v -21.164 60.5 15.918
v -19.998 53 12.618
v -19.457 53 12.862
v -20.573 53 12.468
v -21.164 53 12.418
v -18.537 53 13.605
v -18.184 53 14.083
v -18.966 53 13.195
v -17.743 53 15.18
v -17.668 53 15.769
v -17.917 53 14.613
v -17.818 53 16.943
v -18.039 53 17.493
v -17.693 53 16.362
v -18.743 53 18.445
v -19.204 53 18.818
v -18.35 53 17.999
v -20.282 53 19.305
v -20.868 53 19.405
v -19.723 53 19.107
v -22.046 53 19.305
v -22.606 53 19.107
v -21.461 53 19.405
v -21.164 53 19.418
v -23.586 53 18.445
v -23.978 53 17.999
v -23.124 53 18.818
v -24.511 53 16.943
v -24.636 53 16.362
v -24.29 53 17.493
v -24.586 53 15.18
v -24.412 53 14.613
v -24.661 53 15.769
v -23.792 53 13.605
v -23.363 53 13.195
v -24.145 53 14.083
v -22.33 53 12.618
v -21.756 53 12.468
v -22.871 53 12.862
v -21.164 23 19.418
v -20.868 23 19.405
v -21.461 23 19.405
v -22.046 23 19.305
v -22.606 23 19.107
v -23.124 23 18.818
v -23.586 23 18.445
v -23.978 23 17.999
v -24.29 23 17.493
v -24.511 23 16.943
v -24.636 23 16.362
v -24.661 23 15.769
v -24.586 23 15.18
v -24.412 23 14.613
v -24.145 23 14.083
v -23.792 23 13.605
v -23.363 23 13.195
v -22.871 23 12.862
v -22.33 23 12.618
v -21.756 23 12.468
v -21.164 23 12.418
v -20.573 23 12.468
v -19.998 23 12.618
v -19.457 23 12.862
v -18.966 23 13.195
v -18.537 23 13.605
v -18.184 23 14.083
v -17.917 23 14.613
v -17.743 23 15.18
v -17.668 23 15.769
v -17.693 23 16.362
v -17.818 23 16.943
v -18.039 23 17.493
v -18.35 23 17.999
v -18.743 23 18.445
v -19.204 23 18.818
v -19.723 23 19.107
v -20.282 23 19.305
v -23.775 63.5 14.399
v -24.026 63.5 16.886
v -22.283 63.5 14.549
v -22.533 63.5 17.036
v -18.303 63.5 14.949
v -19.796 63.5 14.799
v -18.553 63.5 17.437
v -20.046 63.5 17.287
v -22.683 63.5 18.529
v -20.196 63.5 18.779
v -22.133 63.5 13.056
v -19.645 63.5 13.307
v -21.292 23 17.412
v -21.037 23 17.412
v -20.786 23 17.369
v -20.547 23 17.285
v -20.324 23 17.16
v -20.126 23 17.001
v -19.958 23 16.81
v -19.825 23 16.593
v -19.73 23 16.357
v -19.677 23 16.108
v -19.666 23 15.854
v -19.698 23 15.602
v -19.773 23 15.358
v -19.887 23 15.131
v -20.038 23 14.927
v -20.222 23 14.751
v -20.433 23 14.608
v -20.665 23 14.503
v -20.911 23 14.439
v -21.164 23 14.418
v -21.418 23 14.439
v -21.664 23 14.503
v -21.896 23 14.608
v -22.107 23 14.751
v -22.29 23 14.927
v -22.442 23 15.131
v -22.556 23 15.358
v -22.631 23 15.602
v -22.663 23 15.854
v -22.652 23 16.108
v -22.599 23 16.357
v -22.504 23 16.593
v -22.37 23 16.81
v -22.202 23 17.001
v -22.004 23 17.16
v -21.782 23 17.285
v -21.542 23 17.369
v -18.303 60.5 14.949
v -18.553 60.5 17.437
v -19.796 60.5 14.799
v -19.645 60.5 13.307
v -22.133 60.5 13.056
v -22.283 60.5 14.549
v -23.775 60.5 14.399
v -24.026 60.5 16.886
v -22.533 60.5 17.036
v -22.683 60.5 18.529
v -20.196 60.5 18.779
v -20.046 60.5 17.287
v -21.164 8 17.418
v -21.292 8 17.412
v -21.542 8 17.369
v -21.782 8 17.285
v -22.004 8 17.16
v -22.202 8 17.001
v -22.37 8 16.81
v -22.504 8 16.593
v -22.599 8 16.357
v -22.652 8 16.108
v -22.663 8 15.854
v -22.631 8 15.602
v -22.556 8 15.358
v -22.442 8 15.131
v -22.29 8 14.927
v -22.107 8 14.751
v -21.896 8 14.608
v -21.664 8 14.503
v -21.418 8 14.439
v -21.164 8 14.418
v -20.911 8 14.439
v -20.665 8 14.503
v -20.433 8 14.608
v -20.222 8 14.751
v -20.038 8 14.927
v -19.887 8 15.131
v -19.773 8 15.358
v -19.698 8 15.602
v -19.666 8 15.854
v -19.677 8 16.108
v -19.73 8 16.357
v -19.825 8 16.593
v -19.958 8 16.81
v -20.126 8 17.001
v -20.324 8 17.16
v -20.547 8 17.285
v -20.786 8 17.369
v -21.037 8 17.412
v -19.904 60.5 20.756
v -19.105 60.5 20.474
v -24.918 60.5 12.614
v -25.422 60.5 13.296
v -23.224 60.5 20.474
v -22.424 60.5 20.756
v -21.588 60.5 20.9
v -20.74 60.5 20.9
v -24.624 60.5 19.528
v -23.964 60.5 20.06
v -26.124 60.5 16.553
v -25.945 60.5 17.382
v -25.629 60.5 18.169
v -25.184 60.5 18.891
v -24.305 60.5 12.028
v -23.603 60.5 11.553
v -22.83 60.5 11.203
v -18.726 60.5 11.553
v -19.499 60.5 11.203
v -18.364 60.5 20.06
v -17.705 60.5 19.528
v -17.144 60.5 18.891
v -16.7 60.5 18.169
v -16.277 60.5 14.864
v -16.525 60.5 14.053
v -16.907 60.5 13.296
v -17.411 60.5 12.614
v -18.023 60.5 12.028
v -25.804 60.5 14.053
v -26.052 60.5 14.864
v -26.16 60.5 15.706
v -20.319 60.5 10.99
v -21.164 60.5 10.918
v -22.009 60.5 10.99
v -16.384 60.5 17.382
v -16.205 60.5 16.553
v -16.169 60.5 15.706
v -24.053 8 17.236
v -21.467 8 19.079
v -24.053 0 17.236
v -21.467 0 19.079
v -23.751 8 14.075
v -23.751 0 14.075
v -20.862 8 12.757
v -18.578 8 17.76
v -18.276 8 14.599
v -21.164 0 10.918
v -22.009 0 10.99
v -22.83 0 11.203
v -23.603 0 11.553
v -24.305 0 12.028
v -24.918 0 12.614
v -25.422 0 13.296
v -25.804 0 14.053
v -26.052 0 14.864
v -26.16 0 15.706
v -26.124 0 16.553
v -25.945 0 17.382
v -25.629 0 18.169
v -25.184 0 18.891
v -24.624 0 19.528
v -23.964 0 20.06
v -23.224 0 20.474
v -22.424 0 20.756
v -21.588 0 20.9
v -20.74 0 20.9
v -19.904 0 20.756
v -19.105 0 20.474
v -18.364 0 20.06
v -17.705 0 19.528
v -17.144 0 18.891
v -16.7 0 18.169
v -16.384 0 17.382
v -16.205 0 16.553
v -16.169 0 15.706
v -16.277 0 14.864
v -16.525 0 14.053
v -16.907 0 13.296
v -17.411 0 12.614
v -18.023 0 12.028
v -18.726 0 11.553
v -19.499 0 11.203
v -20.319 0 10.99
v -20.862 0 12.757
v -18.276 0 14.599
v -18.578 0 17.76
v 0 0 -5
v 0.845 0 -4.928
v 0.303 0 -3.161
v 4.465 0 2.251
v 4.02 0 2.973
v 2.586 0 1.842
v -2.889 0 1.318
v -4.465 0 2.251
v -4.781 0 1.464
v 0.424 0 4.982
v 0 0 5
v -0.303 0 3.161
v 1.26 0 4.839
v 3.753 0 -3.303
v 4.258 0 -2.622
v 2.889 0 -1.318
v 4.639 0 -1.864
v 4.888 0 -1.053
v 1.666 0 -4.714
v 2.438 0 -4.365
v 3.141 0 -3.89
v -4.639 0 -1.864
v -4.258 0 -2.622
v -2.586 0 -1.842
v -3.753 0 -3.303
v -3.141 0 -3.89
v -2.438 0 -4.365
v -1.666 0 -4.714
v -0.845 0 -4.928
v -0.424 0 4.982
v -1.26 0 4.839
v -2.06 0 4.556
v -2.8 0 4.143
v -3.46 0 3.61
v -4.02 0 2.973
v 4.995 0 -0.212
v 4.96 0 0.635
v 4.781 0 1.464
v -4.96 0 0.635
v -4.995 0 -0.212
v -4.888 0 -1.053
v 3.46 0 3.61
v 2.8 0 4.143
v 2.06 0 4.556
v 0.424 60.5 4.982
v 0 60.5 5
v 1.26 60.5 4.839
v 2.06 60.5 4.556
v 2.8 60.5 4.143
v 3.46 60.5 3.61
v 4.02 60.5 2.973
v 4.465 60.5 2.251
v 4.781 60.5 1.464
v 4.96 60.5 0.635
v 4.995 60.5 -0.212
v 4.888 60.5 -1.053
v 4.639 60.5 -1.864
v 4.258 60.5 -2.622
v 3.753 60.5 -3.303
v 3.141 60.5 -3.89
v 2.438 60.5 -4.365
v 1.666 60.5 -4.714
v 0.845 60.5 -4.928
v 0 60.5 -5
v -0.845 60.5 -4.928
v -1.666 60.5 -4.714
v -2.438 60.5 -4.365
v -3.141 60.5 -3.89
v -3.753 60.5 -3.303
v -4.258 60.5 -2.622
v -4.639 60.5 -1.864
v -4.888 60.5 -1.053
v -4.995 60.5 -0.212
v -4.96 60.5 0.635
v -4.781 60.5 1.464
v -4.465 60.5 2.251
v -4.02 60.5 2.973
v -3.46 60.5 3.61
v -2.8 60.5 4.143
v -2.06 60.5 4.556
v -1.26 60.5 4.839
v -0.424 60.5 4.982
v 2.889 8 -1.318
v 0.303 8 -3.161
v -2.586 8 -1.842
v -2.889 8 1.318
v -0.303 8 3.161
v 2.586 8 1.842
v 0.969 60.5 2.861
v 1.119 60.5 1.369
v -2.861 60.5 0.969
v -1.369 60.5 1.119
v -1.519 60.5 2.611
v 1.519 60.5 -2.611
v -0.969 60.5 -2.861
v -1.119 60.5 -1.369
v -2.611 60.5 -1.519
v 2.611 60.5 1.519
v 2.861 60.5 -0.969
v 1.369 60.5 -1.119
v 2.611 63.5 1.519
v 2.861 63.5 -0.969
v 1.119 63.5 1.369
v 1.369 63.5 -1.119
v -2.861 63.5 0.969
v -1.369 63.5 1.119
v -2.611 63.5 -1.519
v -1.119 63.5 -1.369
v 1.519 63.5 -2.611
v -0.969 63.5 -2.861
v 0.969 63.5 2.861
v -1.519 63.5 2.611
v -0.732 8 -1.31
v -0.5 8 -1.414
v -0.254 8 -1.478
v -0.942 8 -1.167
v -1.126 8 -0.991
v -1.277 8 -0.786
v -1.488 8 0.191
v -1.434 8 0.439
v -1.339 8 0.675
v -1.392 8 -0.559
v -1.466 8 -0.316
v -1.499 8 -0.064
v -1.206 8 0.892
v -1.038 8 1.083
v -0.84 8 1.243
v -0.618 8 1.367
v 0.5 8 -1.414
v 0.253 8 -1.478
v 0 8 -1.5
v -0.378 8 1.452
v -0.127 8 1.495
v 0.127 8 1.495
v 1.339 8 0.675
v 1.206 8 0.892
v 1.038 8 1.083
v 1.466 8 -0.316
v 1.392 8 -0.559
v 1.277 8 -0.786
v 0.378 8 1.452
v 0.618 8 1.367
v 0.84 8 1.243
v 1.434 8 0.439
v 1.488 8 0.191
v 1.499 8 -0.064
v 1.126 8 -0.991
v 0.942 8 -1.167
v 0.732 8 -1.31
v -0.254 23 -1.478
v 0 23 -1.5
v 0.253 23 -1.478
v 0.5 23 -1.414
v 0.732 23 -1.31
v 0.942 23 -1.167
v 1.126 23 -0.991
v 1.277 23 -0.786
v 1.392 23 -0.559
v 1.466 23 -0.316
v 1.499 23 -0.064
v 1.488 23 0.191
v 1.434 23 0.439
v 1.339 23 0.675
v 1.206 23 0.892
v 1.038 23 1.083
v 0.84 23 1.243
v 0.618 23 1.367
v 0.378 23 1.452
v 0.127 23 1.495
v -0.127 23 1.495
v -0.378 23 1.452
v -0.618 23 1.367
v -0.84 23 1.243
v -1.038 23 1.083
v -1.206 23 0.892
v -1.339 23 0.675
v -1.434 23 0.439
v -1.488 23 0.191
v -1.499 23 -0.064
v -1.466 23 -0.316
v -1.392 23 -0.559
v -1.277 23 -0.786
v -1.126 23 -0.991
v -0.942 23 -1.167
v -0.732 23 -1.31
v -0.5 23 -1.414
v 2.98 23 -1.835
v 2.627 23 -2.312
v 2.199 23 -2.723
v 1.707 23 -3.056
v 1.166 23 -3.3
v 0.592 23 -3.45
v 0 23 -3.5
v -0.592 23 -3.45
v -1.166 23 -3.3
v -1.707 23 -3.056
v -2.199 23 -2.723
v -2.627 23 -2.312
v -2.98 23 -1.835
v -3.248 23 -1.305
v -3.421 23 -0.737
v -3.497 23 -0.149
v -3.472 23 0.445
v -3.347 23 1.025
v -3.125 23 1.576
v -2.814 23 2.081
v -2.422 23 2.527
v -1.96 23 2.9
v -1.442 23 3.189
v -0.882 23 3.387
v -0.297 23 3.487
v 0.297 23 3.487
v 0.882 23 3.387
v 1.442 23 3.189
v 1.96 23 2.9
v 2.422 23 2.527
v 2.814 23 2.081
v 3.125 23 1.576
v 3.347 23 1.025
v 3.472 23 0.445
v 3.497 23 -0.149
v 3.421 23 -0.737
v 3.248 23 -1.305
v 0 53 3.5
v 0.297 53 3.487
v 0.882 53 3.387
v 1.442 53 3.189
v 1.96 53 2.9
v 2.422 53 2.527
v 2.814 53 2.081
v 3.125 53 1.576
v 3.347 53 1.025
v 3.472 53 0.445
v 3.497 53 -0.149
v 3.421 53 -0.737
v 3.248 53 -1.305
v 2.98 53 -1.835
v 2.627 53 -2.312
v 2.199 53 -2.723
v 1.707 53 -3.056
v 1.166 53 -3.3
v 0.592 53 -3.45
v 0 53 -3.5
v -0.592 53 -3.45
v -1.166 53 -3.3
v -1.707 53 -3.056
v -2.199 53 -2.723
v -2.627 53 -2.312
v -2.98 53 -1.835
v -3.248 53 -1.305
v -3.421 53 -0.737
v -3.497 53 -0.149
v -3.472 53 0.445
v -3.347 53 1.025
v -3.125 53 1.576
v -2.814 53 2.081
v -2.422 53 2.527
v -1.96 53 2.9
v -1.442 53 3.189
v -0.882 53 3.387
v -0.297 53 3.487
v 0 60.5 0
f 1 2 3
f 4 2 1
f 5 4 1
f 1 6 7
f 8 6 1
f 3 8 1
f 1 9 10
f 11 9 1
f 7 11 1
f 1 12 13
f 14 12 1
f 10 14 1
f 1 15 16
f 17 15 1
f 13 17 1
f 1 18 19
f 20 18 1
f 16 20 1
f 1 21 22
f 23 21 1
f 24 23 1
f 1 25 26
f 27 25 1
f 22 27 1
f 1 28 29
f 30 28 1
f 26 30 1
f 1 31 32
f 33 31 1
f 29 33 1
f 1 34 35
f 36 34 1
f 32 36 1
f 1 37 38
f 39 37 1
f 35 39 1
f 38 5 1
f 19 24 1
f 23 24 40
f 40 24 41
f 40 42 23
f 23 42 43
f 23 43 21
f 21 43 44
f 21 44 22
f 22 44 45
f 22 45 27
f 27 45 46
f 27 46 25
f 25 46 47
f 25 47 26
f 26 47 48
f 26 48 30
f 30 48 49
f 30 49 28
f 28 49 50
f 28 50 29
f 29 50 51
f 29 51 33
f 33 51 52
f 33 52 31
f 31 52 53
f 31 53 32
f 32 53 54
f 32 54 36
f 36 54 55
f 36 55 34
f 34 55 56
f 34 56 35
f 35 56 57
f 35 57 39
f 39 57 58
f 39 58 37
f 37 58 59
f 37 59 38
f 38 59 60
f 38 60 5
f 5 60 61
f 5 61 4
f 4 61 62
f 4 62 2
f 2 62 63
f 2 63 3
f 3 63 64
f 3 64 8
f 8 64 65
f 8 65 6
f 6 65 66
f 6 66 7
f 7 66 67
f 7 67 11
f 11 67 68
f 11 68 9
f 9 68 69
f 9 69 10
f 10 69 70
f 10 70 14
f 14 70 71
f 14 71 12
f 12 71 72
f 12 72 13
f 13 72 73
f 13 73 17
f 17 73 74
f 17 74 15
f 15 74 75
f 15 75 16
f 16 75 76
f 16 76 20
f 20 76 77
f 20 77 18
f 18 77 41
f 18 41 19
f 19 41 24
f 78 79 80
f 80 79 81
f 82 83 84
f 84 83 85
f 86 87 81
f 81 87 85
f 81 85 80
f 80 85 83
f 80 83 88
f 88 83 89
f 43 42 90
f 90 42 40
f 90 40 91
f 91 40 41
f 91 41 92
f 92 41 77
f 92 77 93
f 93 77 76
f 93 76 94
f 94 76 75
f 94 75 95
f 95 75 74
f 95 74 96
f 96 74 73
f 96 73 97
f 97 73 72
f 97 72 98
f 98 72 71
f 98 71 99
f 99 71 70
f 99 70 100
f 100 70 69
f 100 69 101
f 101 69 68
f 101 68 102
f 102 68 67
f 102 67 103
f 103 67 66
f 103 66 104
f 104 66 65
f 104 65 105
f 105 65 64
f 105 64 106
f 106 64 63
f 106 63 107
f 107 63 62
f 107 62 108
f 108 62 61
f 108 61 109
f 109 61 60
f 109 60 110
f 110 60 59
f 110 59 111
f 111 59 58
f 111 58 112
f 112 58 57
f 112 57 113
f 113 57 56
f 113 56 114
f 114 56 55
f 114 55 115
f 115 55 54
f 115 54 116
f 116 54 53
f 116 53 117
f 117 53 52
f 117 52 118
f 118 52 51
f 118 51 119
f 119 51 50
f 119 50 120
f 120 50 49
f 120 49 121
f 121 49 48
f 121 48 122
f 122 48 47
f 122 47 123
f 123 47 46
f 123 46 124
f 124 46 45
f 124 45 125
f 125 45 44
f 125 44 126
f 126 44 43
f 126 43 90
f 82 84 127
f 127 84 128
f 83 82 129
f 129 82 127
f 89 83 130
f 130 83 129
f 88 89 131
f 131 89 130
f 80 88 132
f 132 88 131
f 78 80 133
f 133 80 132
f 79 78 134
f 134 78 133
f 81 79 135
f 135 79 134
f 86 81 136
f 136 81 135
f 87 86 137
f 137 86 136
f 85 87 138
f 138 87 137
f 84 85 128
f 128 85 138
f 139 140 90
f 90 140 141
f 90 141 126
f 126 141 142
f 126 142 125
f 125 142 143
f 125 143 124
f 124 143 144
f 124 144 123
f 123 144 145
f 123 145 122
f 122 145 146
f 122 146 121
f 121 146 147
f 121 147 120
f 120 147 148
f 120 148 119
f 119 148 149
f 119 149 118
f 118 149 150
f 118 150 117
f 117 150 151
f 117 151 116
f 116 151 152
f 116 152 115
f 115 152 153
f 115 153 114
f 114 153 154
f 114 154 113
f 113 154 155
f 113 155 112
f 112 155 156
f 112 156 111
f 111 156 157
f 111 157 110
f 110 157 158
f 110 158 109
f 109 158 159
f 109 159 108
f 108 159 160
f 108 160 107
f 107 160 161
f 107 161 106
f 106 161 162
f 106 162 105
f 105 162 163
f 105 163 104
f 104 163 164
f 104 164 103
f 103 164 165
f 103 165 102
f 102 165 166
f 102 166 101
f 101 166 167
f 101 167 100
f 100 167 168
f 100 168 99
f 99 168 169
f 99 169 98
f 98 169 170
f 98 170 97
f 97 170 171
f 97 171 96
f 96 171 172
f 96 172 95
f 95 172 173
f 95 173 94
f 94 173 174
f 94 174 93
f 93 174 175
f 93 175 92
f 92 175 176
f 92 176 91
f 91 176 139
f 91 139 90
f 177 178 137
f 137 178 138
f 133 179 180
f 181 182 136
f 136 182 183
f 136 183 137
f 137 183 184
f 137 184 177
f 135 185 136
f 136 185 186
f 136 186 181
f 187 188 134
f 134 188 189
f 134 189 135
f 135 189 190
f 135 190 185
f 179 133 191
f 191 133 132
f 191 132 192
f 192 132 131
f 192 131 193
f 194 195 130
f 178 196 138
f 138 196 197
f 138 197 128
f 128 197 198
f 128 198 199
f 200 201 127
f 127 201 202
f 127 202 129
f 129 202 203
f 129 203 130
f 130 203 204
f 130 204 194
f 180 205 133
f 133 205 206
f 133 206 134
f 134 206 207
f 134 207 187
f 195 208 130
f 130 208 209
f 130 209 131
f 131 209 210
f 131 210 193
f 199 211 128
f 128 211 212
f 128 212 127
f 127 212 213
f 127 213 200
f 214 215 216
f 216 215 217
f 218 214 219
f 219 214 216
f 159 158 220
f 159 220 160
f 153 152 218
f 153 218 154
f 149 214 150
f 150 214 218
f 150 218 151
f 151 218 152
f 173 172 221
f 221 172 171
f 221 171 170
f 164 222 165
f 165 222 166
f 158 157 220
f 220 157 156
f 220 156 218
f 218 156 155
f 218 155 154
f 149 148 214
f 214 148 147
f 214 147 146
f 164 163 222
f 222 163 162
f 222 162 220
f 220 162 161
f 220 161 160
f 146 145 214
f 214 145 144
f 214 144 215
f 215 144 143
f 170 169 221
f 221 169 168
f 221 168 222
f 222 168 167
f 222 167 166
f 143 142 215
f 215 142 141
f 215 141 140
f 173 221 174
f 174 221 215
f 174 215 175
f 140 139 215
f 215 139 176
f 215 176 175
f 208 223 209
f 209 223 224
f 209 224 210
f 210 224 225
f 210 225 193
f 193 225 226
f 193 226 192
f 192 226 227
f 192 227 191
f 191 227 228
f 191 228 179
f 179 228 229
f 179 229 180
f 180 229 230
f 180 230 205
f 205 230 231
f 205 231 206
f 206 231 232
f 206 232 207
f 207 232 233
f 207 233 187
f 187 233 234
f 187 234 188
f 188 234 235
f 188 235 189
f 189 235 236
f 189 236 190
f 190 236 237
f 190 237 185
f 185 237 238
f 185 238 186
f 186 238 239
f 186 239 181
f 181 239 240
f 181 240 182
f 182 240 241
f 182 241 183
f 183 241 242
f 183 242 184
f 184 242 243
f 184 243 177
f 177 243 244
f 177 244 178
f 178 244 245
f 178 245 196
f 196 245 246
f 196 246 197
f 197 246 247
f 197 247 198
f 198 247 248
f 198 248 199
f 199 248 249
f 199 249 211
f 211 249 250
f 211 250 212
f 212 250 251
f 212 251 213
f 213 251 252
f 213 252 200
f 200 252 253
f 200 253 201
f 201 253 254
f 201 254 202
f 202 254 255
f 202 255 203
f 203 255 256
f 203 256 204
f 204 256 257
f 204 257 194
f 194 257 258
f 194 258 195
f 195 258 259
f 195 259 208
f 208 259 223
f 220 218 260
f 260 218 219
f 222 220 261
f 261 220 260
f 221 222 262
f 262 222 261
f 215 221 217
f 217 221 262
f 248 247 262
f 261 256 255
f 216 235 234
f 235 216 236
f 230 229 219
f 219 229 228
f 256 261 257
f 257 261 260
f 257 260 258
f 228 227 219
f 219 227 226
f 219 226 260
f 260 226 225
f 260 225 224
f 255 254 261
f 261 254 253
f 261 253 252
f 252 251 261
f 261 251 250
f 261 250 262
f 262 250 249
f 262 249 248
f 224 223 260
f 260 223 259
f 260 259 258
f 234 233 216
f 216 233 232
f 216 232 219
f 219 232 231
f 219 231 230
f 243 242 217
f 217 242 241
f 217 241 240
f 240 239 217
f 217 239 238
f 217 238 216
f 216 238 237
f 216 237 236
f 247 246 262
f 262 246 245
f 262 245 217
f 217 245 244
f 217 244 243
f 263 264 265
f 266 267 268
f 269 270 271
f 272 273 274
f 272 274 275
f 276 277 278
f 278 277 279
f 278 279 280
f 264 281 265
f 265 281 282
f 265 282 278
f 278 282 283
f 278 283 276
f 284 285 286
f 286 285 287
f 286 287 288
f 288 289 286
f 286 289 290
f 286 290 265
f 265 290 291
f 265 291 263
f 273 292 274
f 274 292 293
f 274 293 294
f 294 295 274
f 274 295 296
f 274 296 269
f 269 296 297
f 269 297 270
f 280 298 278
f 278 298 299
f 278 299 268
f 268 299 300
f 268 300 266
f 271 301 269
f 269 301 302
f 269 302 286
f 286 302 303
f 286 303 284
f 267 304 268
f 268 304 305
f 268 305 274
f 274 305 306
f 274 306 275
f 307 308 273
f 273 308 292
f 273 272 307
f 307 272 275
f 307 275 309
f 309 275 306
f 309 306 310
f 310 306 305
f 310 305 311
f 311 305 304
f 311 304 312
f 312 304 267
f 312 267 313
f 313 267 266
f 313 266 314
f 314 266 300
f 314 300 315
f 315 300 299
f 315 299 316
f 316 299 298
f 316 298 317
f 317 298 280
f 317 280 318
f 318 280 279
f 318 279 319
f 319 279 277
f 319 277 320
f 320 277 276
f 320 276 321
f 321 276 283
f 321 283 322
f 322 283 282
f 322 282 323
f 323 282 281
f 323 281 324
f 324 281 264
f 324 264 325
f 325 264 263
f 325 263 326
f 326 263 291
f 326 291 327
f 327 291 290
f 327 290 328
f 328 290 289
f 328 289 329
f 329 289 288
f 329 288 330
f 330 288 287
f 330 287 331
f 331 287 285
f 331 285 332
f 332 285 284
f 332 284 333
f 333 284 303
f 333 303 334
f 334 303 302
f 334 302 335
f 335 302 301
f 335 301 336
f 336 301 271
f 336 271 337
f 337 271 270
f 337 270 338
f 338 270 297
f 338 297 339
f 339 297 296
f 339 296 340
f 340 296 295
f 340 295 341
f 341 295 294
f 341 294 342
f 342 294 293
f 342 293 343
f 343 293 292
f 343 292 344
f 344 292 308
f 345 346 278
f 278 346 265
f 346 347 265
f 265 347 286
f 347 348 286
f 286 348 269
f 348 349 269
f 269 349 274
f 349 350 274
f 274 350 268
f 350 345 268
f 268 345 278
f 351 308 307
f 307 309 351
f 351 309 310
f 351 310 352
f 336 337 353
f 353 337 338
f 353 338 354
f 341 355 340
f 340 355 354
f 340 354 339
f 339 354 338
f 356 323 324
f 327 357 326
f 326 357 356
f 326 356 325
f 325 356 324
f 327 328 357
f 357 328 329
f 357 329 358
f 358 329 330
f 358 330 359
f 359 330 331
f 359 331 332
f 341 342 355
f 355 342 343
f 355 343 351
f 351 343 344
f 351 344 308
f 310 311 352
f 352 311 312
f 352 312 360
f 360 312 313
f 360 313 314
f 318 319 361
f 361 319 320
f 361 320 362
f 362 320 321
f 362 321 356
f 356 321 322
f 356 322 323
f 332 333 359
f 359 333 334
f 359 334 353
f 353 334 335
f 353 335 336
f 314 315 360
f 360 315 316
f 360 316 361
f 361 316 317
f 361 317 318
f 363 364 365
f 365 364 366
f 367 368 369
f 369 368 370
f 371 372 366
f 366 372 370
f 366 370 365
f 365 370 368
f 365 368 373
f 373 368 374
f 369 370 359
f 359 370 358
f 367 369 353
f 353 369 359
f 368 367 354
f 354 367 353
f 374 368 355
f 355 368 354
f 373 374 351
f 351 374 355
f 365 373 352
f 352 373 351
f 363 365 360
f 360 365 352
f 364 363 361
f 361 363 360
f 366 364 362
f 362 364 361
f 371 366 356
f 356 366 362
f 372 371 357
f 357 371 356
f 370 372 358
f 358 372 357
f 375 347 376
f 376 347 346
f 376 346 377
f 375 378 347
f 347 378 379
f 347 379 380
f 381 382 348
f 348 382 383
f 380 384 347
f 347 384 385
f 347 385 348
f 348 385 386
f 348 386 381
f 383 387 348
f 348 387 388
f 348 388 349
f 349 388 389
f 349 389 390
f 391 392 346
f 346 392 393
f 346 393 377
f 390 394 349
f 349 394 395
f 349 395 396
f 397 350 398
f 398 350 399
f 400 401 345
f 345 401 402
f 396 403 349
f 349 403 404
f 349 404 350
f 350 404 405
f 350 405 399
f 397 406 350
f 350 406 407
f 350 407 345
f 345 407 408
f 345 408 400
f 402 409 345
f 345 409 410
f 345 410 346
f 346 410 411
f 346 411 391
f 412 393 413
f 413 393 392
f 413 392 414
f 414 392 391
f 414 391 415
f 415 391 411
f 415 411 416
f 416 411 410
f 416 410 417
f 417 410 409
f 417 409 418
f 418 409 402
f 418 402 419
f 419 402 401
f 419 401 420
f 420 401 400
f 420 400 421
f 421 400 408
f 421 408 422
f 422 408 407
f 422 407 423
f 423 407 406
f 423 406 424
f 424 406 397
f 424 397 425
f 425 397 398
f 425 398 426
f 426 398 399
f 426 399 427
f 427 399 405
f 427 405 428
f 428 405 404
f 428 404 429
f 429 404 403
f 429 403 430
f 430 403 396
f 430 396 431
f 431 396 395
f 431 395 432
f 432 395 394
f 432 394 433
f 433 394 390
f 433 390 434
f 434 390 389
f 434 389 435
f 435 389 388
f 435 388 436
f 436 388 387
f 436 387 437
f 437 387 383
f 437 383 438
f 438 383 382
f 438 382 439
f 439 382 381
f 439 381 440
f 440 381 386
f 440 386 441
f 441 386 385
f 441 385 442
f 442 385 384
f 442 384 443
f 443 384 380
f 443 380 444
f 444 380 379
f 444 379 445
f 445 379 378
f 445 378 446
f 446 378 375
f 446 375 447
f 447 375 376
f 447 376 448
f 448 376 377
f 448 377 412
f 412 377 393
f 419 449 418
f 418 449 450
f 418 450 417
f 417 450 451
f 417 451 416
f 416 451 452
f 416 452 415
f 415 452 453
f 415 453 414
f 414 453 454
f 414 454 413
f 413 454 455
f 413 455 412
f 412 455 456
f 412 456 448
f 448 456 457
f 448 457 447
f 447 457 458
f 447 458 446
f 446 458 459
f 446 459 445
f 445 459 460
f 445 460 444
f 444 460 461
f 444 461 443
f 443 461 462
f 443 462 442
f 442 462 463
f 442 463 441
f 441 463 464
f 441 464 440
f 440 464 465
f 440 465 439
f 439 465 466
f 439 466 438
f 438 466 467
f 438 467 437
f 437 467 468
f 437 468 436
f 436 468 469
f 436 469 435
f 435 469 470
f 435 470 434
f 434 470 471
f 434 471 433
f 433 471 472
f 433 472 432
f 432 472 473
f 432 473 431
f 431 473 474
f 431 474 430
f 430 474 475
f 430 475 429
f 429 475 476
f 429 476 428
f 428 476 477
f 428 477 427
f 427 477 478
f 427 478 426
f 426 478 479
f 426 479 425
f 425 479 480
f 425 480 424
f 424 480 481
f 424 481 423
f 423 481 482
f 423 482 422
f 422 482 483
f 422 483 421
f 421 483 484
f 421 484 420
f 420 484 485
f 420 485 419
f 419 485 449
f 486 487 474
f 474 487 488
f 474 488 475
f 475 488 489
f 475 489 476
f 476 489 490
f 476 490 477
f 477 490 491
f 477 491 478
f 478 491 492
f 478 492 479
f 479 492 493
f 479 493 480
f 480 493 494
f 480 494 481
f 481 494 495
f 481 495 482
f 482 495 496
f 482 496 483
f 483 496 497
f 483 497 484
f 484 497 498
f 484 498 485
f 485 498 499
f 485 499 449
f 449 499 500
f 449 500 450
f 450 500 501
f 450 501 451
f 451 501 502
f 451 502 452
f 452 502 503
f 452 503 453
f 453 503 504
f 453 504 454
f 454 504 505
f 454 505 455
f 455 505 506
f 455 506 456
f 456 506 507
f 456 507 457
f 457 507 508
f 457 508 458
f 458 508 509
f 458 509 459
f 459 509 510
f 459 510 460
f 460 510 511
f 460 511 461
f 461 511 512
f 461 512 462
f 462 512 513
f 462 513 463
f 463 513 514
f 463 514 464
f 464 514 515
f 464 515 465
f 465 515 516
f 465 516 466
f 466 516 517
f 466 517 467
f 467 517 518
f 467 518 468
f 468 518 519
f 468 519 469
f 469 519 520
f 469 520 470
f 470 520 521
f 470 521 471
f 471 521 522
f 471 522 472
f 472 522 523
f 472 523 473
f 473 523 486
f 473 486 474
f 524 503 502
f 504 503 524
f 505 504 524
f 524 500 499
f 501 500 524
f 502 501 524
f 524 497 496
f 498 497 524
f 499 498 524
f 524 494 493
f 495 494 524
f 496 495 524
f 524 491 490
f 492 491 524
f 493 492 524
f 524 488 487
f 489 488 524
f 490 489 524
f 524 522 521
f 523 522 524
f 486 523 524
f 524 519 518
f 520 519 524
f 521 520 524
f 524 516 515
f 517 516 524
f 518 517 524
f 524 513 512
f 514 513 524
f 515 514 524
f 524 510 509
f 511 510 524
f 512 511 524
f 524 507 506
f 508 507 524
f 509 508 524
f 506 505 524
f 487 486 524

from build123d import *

# Parameters (mm, degrees)
SKETCH_1_R               = 5
EXTRUDE_1_DEPTH          = 2
EXTRUDE_2_DEPTH          = 3.5
EXTRUDE_3_DEPTH          = 3.5
SKETCH_4_R               = 5
EXTRUDE_4_DEPTH          = 0.5
CUT_EXTRUDE_2_DEPTH      = 3
CUT_EXTRUDE_3_DEPTH      = 2
EXTRUDE_5_DEPTH          = 58
SKETCH_8_R               = 5
EXTRUDE_6_DEPTH          = 58
CUT_EXTRUDE_4_DEPTH      = 8
SKETCH_10_R              = 1.5
CUT_EXTRUDE_5_DEPTH      = 15
SKETCH_11_R              = 3.5
CUT_EXTRUDE_6_DEPTH      = 30
SKETCH_12_R              = 1
CUT_EXTRUDE_7_DEPTH      = 7
SKETCH_13_R              = 3.5
SKETCH_14_R              = 1
SKETCH_18_R              = 13.241072342
EXTRUDE_8_DEPTH          = 1
SKETCH_22_R              = 1.202046813
EXTRUDE_9_DEPTH          = 10
PATTERN_CIRCULAR_2_COUNT = 2
CUT_EXTRUDE_START        = -1
SKETCH_23_R              = 13.241072342
CUT_EXTRUDE_8_DEPTH      = 1
SKETCH_24_R              = 2.250567035
CUT_EXTRUDE_9_DEPTH      = 10


# Read off the part's stored shape, not the designer's step: 切除-扫描1
with BuildPart() as part:
    # 草图1 → 凸台-拉伸1 (new body)
    with BuildSketch(Plane(origin=(0, 0, 0), x_dir=(1, 0, 0), z_dir=(0, 1, 0))):
        with Locations(Location((0, 0, 0), (0, 0, 270))):
            Circle(SKETCH_1_R)
        Polygon((2.55392077, -1.838021228), (2.868733461, 1.292749652), (0.314812691, 3.13077088), (-2.55392077, 1.838021228), (-2.868733461, -1.292749652), (-0.314812691, -3.13077088), align=None, mode=Mode.SUBTRACT)
    extrude_1 = extrude(amount=EXTRUDE_1_DEPTH)

    # 草图2 → 凸台-拉伸2 (add)
    with BuildSketch(Plane(origin=(0, 2, 0), x_dir=(1, 0, 0), z_dir=(0, 1, 0))):
        Polygon((-2.834872538, 1.792623133), (3.135022029, 1.192324151), (2.834872538, -1.792623133), (-3.135022029, -1.192324151), align=None)
    extrude_2 = extrude(amount=EXTRUDE_2_DEPTH)

    # 草图3 → 凸台-拉伸3 (add)
    with BuildSketch(Plane(origin=(0, 2, 0), x_dir=(1, 0, 0), z_dir=(0, 1, 0))):
        Polygon((-1.192324151, 3.135022029), (-1.792623133, -2.834872538), (1.192324151, -3.135022029), (1.792623133, 2.834872538), align=None)
    extrude_3 = extrude(amount=EXTRUDE_3_DEPTH)

    # 草图4 → 凸台-拉伸4 (add)
    with BuildSketch(Plane(origin=(0, 2, 0), x_dir=(1, 0, 0), z_dir=(0, 1, 0))):
        with Locations(Location((0, 0, 0), (0, 0, 270))):
            Circle(SKETCH_4_R)
    extrude_4 = extrude(amount=EXTRUDE_4_DEPTH)

    # 草图5 → 切除-拉伸2 (cut)
    with BuildSketch(Plane(origin=(0, 5.5, 0), x_dir=(1, 0, 0), z_dir=(0, 1, 0))):
        Polygon((-3.135022029, -1.192324151), (-2.834872538, 1.792623133), (-1.342398896, 1.642548387), (-1.192324151, 3.135022029), (1.792623133, 2.834872538), (1.642548387, 1.342398896), (3.135022029, 1.192324151), (2.834872538, -1.792623133), (1.342398896, -1.642548387), (1.192324151, -3.135022029), (-1.792623133, -2.834872538), (-1.642548387, -1.342398896), align=None)
        Polygon((-1.093653289, 1.617535929), (-0.968591001, 2.861263964), (1.518865068, 2.611139388), (1.39380278, 1.367411354), (1.368790323, 1.118665747), (1.617535929, 1.093653289), (2.861263964, 0.968591001), (2.611139388, -1.518865068), (1.367411354, -1.39380278), (1.118665747, -1.368790323), (1.093653289, -1.617535929), (0.968591001, -2.861263964), (-1.518865068, -2.611139388), (-1.39380278, -1.367411354), (-1.368790323, -1.118665747), (-1.617535929, -1.093653289), (-2.861263964, -0.968591001), (-2.611139388, 1.518865068), (-1.367411354, 1.39380278), (-1.118665747, 1.368790323), align=None, mode=Mode.SUBTRACT)
    cut_extrude_2 = extrude(amount=-CUT_EXTRUDE_2_DEPTH, mode=Mode.SUBTRACT)

    # 草图6 → 切除-拉伸3 (cut)
    with BuildSketch(Plane.XZ):
        Polygon((2.888759724, -1.318484202), (2.586220675, 1.842497205), (-0.302539048, 3.160981407), (-2.888759724, 1.318484202), (-2.586220675, -1.842497205), (0.302539048, -3.160981407), align=None)
    cut_extrude_3 = extrude(amount=-CUT_EXTRUDE_3_DEPTH, mode=Mode.SUBTRACT)

    # 草图7 → 凸台-拉伸5 (add)
    with BuildSketch(Plane(origin=(0, 5.5, 0), x_dir=(1, 0, 0), z_dir=(0, 1, 0))):
        Polygon((-1.118665747, 1.368790323), (-0.968591001, 2.861263964), (1.518865068, 2.611139388), (1.368790323, 1.118665747), (2.861263964, 0.968591001), (2.611139388, -1.518865068), (1.118665747, -1.368790323), (0.968591001, -2.861263964), (-1.518865068, -2.611139388), (-1.368790323, -1.118665747), (-2.861263964, -0.968591001), (-2.611139388, 1.518865068), align=None)
    extrude_5 = extrude(amount=EXTRUDE_5_DEPTH)

    # 草图8 → 凸台-拉伸6 (add)
    with BuildSketch(Plane(origin=(0, 2.5, 0), x_dir=(1, 0, 0), z_dir=(0, 1, 0))):
        with Locations(Location((0, 0, 0), (0, 0, 270))):
            Circle(SKETCH_8_R)
    extrude_6 = extrude(amount=EXTRUDE_6_DEPTH)

    # 草图9 → 切除-拉伸4 (cut)
    with BuildSketch(Plane.XZ):
        Polygon((2.888759724, -1.318484202), (2.586220675, 1.842497205), (-0.302539048, 3.160981407), (-2.888759724, 1.318484202), (-2.586220675, -1.842497205), (0.302539048, -3.160981407), align=None)
    cut_extrude_4 = extrude(amount=-CUT_EXTRUDE_4_DEPTH, mode=Mode.SUBTRACT)

    # 草图10 → 切除-拉伸5 (cut)
    with BuildSketch(Plane.XZ.offset(-8)):
        with Locations(Location((0, 0, 0), (0, 0, 270))):
            Circle(SKETCH_10_R)
    cut_extrude_5 = extrude(amount=-CUT_EXTRUDE_5_DEPTH, mode=Mode.SUBTRACT)

    # 草图11 → 切除-拉伸6 (cut)
    with BuildSketch(Plane.XZ.offset(-23)):
        with Locations(Location((0, 0, 0), (0, 0, 270))):
            Circle(SKETCH_11_R)
    cut_extrude_6 = extrude(amount=-CUT_EXTRUDE_6_DEPTH, mode=Mode.SUBTRACT)

    # 草图12 → 切除-拉伸7 (cut)
    with BuildSketch(Plane.XZ.offset(-53)):
        with Locations(Location((0, 0, 0), (0, 0, 270))):
            Circle(SKETCH_12_R)
    cut_extrude_7 = extrude(amount=-CUT_EXTRUDE_7_DEPTH, mode=Mode.SUBTRACT)

    # 草图13 → 放样1 section 0
    with BuildSketch(Plane.XZ.offset(-53)):
        Circle(SKETCH_13_R)
    # 草图14 → 放样1 section 1
    with BuildSketch(Plane.XZ.offset(-60)):
        Circle(SKETCH_14_R)
    loft_1 = loft()

    # 切除-扫描1 outline → 切除-扫描1 (revolve, cut)
    with BuildSketch(Plane.XY):
        Polygon((3.5, 53), (0, 60.5), (0, 53), align=None)
    sweep_1 = revolve(axis=Axis((0, 0, 0), (0, 1, 0)), mode=Mode.SUBTRACT)

    # 草图18 → 凸台-拉伸8 (add)
    with BuildSketch(Plane(origin=(0, 0, 0), x_dir=(1, 0, 0), z_dir=(0, 1, 0))):
        with Locations(Location((-10.582177215, -7.958864376, 0), (0, 0, 270))):
            Circle(SKETCH_18_R)
    extrude(amount=-EXTRUDE_8_DEPTH)

    # 草图22 → 凸台-拉伸9 (add)
    with BuildSketch(Plane(origin=(0, 0, 0), x_dir=(1, 0, 0), z_dir=(0, 1, 0))):
        with Locations(Location((-10.582177215, -7.958864376, 0), (0, 0, 270))):
            Circle(SKETCH_22_R)
    extrude(amount=EXTRUDE_9_DEPTH)

    # 阵列(圆周)2: 凸台-拉伸1, 凸台-拉伸2, 凸台-拉伸3, 凸台-拉伸4, 切除-拉伸2, 切除-拉伸3, 凸台-拉伸5, 凸台-拉伸6, 切除-拉伸4, 切除-拉伸5, 切除-拉伸6, 切除-拉伸7, 放样1, 切除-扫描1 ×2 about axis
    pattern_circular_2_axis = Axis((-10.582177215, 0, 7.958864376), (0, 1, 0))
    add([extrude_1.rotate(pattern_circular_2_axis, i * 360 / PATTERN_CIRCULAR_2_COUNT) for i in range(1, PATTERN_CIRCULAR_2_COUNT)])
    add([extrude_2.rotate(pattern_circular_2_axis, i * 360 / PATTERN_CIRCULAR_2_COUNT) for i in range(1, PATTERN_CIRCULAR_2_COUNT)])
    add([extrude_3.rotate(pattern_circular_2_axis, i * 360 / PATTERN_CIRCULAR_2_COUNT) for i in range(1, PATTERN_CIRCULAR_2_COUNT)])
    add([extrude_4.rotate(pattern_circular_2_axis, i * 360 / PATTERN_CIRCULAR_2_COUNT) for i in range(1, PATTERN_CIRCULAR_2_COUNT)])
    add([cut_extrude_2.rotate(pattern_circular_2_axis, i * 360 / PATTERN_CIRCULAR_2_COUNT) for i in range(1, PATTERN_CIRCULAR_2_COUNT)], mode=Mode.SUBTRACT)
    add([cut_extrude_3.rotate(pattern_circular_2_axis, i * 360 / PATTERN_CIRCULAR_2_COUNT) for i in range(1, PATTERN_CIRCULAR_2_COUNT)], mode=Mode.SUBTRACT)
    add([extrude_5.rotate(pattern_circular_2_axis, i * 360 / PATTERN_CIRCULAR_2_COUNT) for i in range(1, PATTERN_CIRCULAR_2_COUNT)])
    add([extrude_6.rotate(pattern_circular_2_axis, i * 360 / PATTERN_CIRCULAR_2_COUNT) for i in range(1, PATTERN_CIRCULAR_2_COUNT)])
    add([cut_extrude_4.rotate(pattern_circular_2_axis, i * 360 / PATTERN_CIRCULAR_2_COUNT) for i in range(1, PATTERN_CIRCULAR_2_COUNT)], mode=Mode.SUBTRACT)
    add([cut_extrude_5.rotate(pattern_circular_2_axis, i * 360 / PATTERN_CIRCULAR_2_COUNT) for i in range(1, PATTERN_CIRCULAR_2_COUNT)], mode=Mode.SUBTRACT)
    add([cut_extrude_6.rotate(pattern_circular_2_axis, i * 360 / PATTERN_CIRCULAR_2_COUNT) for i in range(1, PATTERN_CIRCULAR_2_COUNT)], mode=Mode.SUBTRACT)
    add([cut_extrude_7.rotate(pattern_circular_2_axis, i * 360 / PATTERN_CIRCULAR_2_COUNT) for i in range(1, PATTERN_CIRCULAR_2_COUNT)], mode=Mode.SUBTRACT)
    add([loft_1.rotate(pattern_circular_2_axis, i * 360 / PATTERN_CIRCULAR_2_COUNT) for i in range(1, PATTERN_CIRCULAR_2_COUNT)])
    add([sweep_1.rotate(pattern_circular_2_axis, i * 360 / PATTERN_CIRCULAR_2_COUNT) for i in range(1, PATTERN_CIRCULAR_2_COUNT)], mode=Mode.SUBTRACT)

    # 草图23 → 切除-拉伸8 (cut)
    with BuildSketch(Plane.XZ.offset(1).offset(CUT_EXTRUDE_START)):
        with Locations((-10.582177215, 7.958864376)):
            Circle(SKETCH_23_R)
    extrude(amount=CUT_EXTRUDE_8_DEPTH, mode=Mode.SUBTRACT)


with BuildPart() as cut_extrude_8_piece_1:
    # of the separate pieces the step leaves, piece 1, a body of its own (cut_extrude_8_pieces)
    add(part.part.solids().sort_by_distance((0, 60.5, 5))[0])


with BuildPart() as cut_extrude_8_piece_2:
    # of the separate pieces the step leaves, piece 2, a body of its own (cut_extrude_8_pieces)
    add(part.part.solids().sort_by_distance((-21.16435443, 0, 10.917728752))[0])


with BuildPart() as cut_extrude_8_piece_3:
    # of the separate pieces the step leaves, piece 3, a body of its own (cut_extrude_8_pieces)
    add(part.part.solids().sort_by_distance((-10.582177215, 0, 9.160911189))[0])

    # 草图24 → 切除-拉伸9 (cut)
    with BuildSketch(Plane.XZ):
        with Locations((-10.582177215, 7.958864376)):
            Circle(SKETCH_24_R)
    extrude(amount=-CUT_EXTRUDE_9_DEPTH, mode=Mode.SUBTRACT)


solid = Compound([cut_extrude_8_piece_1.part, cut_extrude_8_piece_2.part])
